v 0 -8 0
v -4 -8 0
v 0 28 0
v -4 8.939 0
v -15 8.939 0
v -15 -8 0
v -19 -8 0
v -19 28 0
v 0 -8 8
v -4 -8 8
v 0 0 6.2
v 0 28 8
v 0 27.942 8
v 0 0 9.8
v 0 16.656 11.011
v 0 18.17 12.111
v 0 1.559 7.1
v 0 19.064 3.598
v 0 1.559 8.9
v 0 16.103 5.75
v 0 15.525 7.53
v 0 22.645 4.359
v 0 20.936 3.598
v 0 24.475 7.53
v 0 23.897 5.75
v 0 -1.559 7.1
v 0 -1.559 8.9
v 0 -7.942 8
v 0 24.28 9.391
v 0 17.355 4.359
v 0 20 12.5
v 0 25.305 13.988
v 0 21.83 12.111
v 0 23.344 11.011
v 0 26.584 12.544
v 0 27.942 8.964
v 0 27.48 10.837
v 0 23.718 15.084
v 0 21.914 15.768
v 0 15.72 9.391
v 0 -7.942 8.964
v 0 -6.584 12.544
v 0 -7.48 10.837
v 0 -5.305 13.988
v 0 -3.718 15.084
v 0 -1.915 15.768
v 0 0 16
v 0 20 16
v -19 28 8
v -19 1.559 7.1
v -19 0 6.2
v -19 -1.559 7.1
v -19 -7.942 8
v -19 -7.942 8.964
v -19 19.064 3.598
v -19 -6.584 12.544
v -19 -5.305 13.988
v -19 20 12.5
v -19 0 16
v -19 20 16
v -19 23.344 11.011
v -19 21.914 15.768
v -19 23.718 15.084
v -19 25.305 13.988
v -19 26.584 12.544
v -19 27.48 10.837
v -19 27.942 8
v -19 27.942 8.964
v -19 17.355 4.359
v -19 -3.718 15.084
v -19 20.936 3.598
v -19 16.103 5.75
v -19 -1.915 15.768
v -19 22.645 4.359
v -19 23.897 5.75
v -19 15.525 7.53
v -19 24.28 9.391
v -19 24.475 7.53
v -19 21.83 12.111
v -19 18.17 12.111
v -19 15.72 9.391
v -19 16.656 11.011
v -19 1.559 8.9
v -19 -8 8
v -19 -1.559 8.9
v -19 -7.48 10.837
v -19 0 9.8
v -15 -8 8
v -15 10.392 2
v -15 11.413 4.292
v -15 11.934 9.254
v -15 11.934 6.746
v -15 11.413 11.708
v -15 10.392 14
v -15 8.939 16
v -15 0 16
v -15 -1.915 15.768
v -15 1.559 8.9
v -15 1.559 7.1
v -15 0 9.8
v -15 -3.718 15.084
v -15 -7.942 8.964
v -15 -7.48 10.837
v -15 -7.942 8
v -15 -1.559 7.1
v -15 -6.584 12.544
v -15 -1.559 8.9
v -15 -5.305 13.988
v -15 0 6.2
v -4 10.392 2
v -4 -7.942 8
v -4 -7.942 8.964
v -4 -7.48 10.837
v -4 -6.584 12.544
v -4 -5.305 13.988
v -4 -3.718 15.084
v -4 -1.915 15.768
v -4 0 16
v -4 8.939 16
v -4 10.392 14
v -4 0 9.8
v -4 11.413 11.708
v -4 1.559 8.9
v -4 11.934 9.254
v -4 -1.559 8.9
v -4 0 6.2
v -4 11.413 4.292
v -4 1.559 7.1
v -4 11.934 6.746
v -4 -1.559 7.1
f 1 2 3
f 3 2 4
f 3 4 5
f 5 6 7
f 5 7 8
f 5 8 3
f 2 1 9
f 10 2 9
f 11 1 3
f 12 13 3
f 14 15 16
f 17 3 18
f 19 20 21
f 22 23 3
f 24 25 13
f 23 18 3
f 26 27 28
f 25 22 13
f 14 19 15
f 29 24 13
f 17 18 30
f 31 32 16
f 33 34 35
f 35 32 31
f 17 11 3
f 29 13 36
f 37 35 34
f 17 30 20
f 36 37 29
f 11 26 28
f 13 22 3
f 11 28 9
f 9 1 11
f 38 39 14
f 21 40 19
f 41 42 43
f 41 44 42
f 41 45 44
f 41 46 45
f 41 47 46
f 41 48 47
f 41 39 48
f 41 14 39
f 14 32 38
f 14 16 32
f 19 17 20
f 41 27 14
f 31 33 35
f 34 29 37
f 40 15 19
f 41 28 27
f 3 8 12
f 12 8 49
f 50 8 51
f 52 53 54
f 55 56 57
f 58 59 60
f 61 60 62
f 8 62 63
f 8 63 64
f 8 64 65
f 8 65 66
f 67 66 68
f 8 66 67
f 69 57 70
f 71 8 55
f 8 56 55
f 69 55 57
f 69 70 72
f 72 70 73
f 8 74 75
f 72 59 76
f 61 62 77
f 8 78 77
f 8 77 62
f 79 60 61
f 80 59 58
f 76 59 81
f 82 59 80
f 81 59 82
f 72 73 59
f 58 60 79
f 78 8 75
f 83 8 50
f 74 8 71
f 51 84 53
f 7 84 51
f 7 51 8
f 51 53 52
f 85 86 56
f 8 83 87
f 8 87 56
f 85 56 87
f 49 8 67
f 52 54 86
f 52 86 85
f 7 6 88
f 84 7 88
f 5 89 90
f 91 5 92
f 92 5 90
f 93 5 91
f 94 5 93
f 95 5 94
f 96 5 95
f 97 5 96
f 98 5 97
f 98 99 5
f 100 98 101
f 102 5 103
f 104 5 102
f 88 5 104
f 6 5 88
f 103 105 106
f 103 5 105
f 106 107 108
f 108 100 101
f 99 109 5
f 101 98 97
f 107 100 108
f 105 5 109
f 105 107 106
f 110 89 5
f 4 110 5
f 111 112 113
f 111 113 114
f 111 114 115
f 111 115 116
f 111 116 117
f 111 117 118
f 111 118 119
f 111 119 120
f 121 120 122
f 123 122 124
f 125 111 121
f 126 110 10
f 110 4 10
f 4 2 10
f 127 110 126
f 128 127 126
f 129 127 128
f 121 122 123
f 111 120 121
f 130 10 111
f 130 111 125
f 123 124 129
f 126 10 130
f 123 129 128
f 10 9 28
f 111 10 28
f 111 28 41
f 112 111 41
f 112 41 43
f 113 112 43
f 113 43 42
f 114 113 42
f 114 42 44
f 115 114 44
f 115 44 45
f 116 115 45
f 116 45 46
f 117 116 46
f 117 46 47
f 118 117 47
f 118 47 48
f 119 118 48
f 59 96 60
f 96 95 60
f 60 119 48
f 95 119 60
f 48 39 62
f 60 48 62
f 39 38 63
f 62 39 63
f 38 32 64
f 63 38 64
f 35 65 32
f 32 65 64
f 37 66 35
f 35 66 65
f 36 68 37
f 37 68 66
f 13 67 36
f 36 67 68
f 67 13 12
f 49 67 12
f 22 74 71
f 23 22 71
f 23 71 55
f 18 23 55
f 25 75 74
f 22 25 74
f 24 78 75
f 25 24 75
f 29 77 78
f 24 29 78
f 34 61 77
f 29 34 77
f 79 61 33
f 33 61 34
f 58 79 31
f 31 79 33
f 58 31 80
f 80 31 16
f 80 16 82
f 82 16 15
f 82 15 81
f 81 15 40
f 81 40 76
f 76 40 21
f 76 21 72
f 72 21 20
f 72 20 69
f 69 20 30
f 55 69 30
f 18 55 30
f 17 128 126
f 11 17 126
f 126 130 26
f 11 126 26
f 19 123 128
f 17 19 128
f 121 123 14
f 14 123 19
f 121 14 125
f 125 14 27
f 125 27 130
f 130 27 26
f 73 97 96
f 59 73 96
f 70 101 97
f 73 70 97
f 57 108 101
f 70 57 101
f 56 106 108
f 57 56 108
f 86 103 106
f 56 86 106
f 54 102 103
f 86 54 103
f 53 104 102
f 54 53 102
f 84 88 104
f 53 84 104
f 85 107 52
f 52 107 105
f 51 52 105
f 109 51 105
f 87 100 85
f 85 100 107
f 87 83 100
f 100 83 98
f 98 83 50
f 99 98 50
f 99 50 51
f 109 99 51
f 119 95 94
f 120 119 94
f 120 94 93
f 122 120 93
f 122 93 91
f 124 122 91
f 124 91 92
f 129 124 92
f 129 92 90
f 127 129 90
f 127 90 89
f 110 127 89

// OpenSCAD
// PRUSA iteration3
// Y idler
// GNU GPL v3
// Josef Průša <iam@josefprusa.cz> and contributors
// http://www.reprap.org/wiki/Prusa_Mendel
// http://prusamendel.org


module y_idler_base(){
 translate(v = [0,0,0]) cylinder(h = 19, r=8);	
 translate(v = [0,20,0]) cylinder(h = 19, r=8);
 translate(v = [0,10,9.5]) cube(size = [16,20,19], center=true);
 translate(v = [-4,10,9.5]) cube(size = [8,16+20,19], center=true);
}

module y_idler_holes(){
 translate(v = [0,0,-1]) cylinder(h = 120, r=1.8);	
 translate(v = [0,20,-1]) cylinder(h = 25, r=4.5);
 translate(v = [0,0,4]) cylinder(h = 11, r=12);
}

// Final part
module y_idler(){
 translate(v = [0,0,8])rotate([0,-90,0]) difference(){
  y_idler_base();
  y_idler_holes();
 }
}

y_idler();
